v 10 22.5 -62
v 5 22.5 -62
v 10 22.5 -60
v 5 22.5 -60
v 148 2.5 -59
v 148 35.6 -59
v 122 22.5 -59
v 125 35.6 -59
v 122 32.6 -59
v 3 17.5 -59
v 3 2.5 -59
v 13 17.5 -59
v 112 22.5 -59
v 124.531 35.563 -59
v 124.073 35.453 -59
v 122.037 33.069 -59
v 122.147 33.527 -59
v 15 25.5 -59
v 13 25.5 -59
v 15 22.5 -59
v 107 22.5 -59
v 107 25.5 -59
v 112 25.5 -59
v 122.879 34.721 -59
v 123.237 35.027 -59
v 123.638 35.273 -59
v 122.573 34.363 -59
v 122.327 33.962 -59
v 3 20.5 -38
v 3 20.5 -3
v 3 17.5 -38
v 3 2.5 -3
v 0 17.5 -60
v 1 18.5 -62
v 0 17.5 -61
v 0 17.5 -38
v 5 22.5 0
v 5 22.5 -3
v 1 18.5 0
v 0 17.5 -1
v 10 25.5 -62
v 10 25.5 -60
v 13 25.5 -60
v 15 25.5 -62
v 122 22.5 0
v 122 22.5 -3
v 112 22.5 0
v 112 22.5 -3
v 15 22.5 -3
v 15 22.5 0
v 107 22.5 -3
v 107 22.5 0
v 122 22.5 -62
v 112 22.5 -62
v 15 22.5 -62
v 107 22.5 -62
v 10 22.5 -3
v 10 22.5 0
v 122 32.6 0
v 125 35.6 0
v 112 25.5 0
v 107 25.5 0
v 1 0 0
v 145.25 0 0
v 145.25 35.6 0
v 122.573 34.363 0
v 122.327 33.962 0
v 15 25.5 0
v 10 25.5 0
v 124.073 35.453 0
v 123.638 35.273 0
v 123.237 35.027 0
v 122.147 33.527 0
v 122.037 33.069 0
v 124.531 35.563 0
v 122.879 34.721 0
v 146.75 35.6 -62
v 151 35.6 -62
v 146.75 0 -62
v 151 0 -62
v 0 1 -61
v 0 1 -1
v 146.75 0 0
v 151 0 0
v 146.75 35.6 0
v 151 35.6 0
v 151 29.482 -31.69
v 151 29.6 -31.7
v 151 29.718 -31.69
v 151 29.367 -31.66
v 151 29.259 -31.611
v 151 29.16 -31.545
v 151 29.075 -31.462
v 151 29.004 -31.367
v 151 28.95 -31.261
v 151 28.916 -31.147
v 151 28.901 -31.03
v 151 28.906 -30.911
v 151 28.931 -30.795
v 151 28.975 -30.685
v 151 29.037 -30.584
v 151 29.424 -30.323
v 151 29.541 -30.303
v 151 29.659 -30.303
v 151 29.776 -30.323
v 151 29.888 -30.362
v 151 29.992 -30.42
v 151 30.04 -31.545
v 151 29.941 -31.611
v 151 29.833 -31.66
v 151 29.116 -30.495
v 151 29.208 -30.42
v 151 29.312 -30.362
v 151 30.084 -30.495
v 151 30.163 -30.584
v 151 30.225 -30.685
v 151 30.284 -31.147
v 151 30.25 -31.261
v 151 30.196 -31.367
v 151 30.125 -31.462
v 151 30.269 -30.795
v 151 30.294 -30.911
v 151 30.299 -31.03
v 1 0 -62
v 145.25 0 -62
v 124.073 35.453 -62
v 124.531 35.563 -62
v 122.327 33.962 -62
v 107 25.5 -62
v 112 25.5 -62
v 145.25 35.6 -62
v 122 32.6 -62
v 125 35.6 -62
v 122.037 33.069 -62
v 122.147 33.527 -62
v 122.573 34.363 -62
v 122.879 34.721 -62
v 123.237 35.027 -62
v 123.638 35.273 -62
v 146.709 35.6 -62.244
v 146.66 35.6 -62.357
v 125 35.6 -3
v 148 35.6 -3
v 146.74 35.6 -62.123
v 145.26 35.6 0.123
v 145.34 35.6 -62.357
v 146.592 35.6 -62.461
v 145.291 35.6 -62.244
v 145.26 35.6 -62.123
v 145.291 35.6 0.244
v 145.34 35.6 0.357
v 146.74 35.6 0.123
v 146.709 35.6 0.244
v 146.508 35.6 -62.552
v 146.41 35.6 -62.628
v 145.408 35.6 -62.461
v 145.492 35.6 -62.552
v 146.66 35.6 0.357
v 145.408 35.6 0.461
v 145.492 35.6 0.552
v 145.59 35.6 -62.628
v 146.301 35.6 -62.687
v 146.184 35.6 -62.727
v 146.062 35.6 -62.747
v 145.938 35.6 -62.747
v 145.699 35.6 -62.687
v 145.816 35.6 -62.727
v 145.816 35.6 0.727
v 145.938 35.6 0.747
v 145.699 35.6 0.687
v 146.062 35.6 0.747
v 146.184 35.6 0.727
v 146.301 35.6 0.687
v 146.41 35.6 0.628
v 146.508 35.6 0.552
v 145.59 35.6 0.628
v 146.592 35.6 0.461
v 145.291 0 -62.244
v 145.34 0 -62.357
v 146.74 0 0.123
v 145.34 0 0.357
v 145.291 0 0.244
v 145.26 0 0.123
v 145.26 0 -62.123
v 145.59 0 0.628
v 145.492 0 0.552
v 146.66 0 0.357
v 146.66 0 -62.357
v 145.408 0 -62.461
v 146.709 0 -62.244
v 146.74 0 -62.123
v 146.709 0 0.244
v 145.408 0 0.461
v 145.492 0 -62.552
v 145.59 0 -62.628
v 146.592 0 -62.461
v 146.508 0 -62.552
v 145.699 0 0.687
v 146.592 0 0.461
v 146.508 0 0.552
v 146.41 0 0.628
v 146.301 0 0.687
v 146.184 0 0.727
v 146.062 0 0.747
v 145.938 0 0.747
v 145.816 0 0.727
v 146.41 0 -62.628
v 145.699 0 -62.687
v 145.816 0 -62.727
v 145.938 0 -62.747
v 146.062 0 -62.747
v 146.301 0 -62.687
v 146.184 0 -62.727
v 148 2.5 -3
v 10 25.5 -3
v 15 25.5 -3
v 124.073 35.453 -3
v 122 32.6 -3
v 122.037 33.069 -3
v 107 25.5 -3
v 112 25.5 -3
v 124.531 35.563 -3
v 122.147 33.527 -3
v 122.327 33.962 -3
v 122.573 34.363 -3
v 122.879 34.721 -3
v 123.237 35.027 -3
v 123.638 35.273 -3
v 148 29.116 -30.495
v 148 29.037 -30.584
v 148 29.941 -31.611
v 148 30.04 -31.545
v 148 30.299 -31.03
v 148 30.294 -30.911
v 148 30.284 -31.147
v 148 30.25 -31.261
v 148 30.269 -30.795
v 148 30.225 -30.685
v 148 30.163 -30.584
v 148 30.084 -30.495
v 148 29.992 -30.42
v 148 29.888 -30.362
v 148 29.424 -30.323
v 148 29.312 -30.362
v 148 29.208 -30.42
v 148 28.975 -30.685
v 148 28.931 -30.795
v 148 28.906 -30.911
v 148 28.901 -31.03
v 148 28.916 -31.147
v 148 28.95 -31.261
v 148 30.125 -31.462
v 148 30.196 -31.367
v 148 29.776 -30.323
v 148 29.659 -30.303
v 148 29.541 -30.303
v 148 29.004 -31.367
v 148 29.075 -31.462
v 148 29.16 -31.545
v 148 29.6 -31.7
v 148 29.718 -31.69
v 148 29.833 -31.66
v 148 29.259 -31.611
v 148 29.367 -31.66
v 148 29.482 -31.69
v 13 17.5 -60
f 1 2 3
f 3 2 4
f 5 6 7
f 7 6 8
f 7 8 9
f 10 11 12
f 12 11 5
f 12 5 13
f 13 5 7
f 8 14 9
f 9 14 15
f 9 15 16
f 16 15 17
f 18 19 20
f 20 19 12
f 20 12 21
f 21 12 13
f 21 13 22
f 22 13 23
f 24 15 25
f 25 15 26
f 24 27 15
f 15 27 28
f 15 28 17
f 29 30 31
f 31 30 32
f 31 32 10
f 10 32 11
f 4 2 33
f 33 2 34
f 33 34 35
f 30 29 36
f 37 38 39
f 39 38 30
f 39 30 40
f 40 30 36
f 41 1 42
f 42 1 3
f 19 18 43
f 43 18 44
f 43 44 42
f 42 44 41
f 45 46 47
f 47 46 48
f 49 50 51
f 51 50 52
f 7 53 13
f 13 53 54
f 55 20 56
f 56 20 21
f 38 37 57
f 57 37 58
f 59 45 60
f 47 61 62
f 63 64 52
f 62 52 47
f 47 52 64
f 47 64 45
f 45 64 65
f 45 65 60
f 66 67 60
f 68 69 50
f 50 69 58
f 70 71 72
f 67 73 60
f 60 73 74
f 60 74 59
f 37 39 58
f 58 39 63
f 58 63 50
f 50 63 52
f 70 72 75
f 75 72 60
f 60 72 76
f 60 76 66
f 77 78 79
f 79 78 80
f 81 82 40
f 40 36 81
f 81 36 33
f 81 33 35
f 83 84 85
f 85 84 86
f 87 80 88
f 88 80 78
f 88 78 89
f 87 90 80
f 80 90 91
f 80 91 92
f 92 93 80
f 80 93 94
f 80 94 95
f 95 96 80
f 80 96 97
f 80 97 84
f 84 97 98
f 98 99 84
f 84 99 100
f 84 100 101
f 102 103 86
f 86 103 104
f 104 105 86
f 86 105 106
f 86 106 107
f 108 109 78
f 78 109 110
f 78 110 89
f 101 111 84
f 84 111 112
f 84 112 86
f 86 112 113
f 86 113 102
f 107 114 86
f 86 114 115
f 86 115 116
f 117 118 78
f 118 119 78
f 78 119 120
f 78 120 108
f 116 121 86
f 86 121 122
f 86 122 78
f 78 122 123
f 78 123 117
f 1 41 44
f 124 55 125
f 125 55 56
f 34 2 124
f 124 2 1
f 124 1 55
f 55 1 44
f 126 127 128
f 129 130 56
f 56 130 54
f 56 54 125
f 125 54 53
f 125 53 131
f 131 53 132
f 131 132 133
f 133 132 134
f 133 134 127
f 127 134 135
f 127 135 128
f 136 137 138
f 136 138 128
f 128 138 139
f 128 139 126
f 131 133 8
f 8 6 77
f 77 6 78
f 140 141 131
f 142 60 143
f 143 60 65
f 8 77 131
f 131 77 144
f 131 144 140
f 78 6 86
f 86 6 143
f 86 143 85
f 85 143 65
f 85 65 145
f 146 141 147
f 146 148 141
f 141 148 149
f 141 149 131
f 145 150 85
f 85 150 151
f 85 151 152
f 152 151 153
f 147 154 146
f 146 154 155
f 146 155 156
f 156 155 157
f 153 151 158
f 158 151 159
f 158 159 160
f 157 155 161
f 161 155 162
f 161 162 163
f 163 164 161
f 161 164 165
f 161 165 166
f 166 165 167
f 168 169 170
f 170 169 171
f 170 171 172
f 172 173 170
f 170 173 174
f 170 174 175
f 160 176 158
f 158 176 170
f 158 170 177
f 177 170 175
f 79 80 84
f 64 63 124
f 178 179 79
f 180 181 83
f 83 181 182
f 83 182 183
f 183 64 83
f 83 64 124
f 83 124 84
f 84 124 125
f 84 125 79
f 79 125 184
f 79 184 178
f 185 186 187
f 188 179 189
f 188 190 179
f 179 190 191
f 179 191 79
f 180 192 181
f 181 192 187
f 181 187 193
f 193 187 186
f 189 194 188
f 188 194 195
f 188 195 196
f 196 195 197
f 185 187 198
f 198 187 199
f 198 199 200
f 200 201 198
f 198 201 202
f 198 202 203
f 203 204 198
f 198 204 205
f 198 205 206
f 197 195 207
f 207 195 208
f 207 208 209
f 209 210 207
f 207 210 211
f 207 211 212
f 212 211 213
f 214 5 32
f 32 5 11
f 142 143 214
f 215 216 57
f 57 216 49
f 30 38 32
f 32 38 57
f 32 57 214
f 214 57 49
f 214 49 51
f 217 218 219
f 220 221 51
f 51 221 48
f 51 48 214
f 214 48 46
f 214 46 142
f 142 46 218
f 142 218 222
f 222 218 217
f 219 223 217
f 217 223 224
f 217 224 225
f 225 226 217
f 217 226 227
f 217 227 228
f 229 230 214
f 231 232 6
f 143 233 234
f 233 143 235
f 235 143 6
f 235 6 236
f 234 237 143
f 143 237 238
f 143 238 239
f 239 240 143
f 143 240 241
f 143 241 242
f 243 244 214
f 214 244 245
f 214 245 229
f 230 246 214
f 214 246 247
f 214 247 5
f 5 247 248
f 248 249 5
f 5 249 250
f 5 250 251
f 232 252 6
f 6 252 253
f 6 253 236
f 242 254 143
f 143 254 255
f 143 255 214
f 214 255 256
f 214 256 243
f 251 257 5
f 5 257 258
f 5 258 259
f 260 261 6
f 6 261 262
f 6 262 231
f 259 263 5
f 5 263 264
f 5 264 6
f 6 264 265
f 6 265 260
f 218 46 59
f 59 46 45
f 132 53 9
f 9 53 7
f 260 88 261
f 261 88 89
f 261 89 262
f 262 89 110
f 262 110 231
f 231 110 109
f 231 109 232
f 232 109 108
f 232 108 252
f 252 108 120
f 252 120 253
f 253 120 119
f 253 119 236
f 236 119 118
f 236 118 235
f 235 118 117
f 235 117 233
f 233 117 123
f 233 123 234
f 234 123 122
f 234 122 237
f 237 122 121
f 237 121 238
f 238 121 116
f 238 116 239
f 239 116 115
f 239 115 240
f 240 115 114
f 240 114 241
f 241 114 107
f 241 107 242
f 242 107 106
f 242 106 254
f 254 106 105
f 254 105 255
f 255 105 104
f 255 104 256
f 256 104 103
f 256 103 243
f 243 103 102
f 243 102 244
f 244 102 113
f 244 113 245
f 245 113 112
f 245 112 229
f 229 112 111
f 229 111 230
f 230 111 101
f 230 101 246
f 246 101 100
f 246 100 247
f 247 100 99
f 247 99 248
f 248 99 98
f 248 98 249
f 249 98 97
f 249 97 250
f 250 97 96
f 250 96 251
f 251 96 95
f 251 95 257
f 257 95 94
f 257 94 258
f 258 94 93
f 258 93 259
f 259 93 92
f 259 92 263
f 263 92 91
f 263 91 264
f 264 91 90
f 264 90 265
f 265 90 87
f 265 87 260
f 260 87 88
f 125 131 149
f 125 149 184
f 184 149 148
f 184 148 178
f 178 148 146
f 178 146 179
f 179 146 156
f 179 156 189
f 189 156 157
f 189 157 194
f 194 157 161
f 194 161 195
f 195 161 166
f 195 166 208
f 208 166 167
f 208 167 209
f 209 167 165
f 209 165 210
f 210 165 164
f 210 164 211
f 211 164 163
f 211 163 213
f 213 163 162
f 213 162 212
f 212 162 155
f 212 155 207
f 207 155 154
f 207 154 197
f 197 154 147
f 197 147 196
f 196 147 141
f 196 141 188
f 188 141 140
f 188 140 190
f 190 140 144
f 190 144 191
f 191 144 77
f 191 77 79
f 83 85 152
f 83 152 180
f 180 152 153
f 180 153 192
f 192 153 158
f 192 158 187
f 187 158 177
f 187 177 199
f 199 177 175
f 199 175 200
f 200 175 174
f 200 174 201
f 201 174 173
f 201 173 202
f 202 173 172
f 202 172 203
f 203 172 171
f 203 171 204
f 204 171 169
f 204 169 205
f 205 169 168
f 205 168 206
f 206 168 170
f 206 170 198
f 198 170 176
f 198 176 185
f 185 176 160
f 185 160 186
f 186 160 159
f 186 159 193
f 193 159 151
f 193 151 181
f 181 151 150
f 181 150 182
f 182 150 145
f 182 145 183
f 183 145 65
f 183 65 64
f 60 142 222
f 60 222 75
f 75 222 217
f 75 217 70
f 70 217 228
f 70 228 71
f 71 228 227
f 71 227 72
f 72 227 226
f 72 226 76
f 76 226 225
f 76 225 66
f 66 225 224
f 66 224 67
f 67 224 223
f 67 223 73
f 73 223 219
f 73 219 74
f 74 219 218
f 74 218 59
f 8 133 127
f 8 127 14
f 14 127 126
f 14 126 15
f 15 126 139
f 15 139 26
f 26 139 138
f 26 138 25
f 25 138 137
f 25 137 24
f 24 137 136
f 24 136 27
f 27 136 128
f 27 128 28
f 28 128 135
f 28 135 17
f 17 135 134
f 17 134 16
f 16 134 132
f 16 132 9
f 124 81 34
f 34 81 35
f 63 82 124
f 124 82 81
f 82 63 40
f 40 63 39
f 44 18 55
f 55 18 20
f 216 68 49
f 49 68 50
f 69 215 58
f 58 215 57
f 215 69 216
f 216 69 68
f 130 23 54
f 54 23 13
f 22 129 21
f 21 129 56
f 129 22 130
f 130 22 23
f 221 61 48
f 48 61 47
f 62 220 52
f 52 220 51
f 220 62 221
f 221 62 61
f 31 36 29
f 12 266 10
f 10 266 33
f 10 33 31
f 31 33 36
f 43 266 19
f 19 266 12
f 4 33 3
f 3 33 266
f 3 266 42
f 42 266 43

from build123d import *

# Parameters (mm, degrees)
ESBO_O1_W                  = 151
ESBO_O1_H                  = 62
RESSALTO_EXTRUS_O1_DEPTH   = 35.6
ESBO_O2_W                  = 145
ESBO_O2_H                  = 56
CORTE_EXTRUS_O1_DEPTH      = 33.1
ESBO_O3_W                  = 122
ESBO_O3_H                  = 62
CORTE_EXTRUS_O2_DEPTH      = 13.1
CHANFRO1_SIZE              = 5
ESBO_O7_R                  = 0.7
CORTE_EXTRUS_O6_DEPTH      = 3
ESBO_O6_R                  = 0.75
RESSALTO_EXTRUS_O2_DEPTH   = 35.6
FILETE1_R                  = 3
CHANFRO2_SIZE              = 1
ESBO_O8_W                  = 5
ESBO_O8_H                  = 3
RESSALTO_EXTRUS_O3_DEPTH   = 3
CORTE_EXTRUS_O7_DEPTH      = 3
CORTE_EXTRUS_O7_DEPTH_BACK = 5
ESBO_O9_W                  = 13
ESBO_O9_H                  = 22


with BuildPart() as part:
    # Esboço1 → Ressalto-extrusão1 (new body)
    with BuildSketch(Plane(origin=(0, 0, 0), x_dir=(1, 0, 0), z_dir=(0, 1, 0))):
        with Locations((75.5, 31)):
            Rectangle(ESBO_O1_W, ESBO_O1_H)
    extrude(amount=RESSALTO_EXTRUS_O1_DEPTH)

    # Esboço2 → Corte-extrusão1 (cut)
    with BuildSketch(Plane(origin=(0, 35.6, 0), x_dir=(1, 0, 0), z_dir=(0, 1, 0))):
        with Locations((75.5, 31)):
            Rectangle(ESBO_O2_W, ESBO_O2_H)
    extrude(amount=-CORTE_EXTRUS_O1_DEPTH, mode=Mode.SUBTRACT)

    # Esboço3 → Corte-extrusão2 (cut)
    with BuildSketch(Plane(origin=(0, 35.6, 0), x_dir=(1, 0, 0), z_dir=(0, 1, 0))):
        with Locations((61, 31)):
            Rectangle(ESBO_O3_W, ESBO_O3_H)
    extrude(amount=-CORTE_EXTRUS_O2_DEPTH, mode=Mode.SUBTRACT)

    # Chanfro1
    # the kernel refuses this chamfer: 5 mm, written as the material it takes off along each edge
    with BuildSketch(Plane(origin=(0, 22.5, -74.85841494), x_dir=(0.9996219169112968, 0.027495876610586317, 0), z_dir=(0, 0, 1))) as chanfro1_piece_1:
        Polygon((CHANFRO1_SIZE * 0.999621916911, -CHANFRO1_SIZE * 0.0274958766106), (-CHANFRO1_SIZE * 0.0274958766106, -CHANFRO1_SIZE * 0.999621916911), (0, 0), align=None)
    extrude(amount=87.71682988, mode=Mode.SUBTRACT)

    # Esboço7 → Corte-extrusão6 (cut)
    with BuildSketch(Plane(origin=(151, 0, 0), x_dir=(0, 0, -1), z_dir=(1, 0, 0))):
        with Locations((31, 29.6)):
            Circle(ESBO_O7_R)
    extrude(amount=-CORTE_EXTRUS_O6_DEPTH, mode=Mode.SUBTRACT)

    # Esboço6 → Ressalto-extrusão2 (add)
    with BuildSketch(Plane(origin=(0, 35.6, 0), x_dir=(1, 0, 0), z_dir=(0, 1, 0))):
        with Locations((146, 62)):
            Circle(ESBO_O6_R)
        with Locations((146, 0)):
            Circle(ESBO_O6_R)
    extrude(amount=-RESSALTO_EXTRUS_O2_DEPTH)

    # Filete1
    filete1_edges = [part.edges().sort_by_distance(p)[0] for p in [
        (122, 35.6, -60.5),
        (122, 35.6, -1.5),
    ]]
    fillet(filete1_edges, radius=FILETE1_R)

    # Chanfro2
    chanfro2_edges = [part.edges().sort_by_distance(p)[0] for p in [
        (0, 8.75, 0),
        (0, 8.75, -62),
        (0, 0, -31),
    ]]
    chamfer(chanfro2_edges, length=CHANFRO2_SIZE)

    # Esboço8 → Ressalto-extrusão3 (add)
    with BuildSketch(Plane(origin=(0, 22.5, 0), x_dir=(1, 0, 0), z_dir=(0, 1, 0))):
        with Locations((12.5, 60.5)):
            Rectangle(ESBO_O8_W, ESBO_O8_H)
        with Locations((12.5, 1.5)):
            Rectangle(ESBO_O8_W, ESBO_O8_H)
        with Locations((109.5, 60.5)):
            Rectangle(ESBO_O8_W, ESBO_O8_H)
        with Locations((109.5, 1.5)):
            Rectangle(ESBO_O8_W, ESBO_O8_H)
    extrude(amount=RESSALTO_EXTRUS_O3_DEPTH)

    # Esboço9 → Corte-extrusão7 (cut, two sides: drawn at the far end of the back side and taken through both)
    with BuildSketch(Plane(origin=(0, 22.5, 0), x_dir=(1, 0, 0), z_dir=(0, 1, 0)).offset(-CORTE_EXTRUS_O7_DEPTH_BACK)):
        with Locations((6.5, 49)):
            Rectangle(ESBO_O9_W, ESBO_O9_H)
    extrude(amount=CORTE_EXTRUS_O7_DEPTH + CORTE_EXTRUS_O7_DEPTH_BACK, mode=Mode.SUBTRACT)


solid = part.part
